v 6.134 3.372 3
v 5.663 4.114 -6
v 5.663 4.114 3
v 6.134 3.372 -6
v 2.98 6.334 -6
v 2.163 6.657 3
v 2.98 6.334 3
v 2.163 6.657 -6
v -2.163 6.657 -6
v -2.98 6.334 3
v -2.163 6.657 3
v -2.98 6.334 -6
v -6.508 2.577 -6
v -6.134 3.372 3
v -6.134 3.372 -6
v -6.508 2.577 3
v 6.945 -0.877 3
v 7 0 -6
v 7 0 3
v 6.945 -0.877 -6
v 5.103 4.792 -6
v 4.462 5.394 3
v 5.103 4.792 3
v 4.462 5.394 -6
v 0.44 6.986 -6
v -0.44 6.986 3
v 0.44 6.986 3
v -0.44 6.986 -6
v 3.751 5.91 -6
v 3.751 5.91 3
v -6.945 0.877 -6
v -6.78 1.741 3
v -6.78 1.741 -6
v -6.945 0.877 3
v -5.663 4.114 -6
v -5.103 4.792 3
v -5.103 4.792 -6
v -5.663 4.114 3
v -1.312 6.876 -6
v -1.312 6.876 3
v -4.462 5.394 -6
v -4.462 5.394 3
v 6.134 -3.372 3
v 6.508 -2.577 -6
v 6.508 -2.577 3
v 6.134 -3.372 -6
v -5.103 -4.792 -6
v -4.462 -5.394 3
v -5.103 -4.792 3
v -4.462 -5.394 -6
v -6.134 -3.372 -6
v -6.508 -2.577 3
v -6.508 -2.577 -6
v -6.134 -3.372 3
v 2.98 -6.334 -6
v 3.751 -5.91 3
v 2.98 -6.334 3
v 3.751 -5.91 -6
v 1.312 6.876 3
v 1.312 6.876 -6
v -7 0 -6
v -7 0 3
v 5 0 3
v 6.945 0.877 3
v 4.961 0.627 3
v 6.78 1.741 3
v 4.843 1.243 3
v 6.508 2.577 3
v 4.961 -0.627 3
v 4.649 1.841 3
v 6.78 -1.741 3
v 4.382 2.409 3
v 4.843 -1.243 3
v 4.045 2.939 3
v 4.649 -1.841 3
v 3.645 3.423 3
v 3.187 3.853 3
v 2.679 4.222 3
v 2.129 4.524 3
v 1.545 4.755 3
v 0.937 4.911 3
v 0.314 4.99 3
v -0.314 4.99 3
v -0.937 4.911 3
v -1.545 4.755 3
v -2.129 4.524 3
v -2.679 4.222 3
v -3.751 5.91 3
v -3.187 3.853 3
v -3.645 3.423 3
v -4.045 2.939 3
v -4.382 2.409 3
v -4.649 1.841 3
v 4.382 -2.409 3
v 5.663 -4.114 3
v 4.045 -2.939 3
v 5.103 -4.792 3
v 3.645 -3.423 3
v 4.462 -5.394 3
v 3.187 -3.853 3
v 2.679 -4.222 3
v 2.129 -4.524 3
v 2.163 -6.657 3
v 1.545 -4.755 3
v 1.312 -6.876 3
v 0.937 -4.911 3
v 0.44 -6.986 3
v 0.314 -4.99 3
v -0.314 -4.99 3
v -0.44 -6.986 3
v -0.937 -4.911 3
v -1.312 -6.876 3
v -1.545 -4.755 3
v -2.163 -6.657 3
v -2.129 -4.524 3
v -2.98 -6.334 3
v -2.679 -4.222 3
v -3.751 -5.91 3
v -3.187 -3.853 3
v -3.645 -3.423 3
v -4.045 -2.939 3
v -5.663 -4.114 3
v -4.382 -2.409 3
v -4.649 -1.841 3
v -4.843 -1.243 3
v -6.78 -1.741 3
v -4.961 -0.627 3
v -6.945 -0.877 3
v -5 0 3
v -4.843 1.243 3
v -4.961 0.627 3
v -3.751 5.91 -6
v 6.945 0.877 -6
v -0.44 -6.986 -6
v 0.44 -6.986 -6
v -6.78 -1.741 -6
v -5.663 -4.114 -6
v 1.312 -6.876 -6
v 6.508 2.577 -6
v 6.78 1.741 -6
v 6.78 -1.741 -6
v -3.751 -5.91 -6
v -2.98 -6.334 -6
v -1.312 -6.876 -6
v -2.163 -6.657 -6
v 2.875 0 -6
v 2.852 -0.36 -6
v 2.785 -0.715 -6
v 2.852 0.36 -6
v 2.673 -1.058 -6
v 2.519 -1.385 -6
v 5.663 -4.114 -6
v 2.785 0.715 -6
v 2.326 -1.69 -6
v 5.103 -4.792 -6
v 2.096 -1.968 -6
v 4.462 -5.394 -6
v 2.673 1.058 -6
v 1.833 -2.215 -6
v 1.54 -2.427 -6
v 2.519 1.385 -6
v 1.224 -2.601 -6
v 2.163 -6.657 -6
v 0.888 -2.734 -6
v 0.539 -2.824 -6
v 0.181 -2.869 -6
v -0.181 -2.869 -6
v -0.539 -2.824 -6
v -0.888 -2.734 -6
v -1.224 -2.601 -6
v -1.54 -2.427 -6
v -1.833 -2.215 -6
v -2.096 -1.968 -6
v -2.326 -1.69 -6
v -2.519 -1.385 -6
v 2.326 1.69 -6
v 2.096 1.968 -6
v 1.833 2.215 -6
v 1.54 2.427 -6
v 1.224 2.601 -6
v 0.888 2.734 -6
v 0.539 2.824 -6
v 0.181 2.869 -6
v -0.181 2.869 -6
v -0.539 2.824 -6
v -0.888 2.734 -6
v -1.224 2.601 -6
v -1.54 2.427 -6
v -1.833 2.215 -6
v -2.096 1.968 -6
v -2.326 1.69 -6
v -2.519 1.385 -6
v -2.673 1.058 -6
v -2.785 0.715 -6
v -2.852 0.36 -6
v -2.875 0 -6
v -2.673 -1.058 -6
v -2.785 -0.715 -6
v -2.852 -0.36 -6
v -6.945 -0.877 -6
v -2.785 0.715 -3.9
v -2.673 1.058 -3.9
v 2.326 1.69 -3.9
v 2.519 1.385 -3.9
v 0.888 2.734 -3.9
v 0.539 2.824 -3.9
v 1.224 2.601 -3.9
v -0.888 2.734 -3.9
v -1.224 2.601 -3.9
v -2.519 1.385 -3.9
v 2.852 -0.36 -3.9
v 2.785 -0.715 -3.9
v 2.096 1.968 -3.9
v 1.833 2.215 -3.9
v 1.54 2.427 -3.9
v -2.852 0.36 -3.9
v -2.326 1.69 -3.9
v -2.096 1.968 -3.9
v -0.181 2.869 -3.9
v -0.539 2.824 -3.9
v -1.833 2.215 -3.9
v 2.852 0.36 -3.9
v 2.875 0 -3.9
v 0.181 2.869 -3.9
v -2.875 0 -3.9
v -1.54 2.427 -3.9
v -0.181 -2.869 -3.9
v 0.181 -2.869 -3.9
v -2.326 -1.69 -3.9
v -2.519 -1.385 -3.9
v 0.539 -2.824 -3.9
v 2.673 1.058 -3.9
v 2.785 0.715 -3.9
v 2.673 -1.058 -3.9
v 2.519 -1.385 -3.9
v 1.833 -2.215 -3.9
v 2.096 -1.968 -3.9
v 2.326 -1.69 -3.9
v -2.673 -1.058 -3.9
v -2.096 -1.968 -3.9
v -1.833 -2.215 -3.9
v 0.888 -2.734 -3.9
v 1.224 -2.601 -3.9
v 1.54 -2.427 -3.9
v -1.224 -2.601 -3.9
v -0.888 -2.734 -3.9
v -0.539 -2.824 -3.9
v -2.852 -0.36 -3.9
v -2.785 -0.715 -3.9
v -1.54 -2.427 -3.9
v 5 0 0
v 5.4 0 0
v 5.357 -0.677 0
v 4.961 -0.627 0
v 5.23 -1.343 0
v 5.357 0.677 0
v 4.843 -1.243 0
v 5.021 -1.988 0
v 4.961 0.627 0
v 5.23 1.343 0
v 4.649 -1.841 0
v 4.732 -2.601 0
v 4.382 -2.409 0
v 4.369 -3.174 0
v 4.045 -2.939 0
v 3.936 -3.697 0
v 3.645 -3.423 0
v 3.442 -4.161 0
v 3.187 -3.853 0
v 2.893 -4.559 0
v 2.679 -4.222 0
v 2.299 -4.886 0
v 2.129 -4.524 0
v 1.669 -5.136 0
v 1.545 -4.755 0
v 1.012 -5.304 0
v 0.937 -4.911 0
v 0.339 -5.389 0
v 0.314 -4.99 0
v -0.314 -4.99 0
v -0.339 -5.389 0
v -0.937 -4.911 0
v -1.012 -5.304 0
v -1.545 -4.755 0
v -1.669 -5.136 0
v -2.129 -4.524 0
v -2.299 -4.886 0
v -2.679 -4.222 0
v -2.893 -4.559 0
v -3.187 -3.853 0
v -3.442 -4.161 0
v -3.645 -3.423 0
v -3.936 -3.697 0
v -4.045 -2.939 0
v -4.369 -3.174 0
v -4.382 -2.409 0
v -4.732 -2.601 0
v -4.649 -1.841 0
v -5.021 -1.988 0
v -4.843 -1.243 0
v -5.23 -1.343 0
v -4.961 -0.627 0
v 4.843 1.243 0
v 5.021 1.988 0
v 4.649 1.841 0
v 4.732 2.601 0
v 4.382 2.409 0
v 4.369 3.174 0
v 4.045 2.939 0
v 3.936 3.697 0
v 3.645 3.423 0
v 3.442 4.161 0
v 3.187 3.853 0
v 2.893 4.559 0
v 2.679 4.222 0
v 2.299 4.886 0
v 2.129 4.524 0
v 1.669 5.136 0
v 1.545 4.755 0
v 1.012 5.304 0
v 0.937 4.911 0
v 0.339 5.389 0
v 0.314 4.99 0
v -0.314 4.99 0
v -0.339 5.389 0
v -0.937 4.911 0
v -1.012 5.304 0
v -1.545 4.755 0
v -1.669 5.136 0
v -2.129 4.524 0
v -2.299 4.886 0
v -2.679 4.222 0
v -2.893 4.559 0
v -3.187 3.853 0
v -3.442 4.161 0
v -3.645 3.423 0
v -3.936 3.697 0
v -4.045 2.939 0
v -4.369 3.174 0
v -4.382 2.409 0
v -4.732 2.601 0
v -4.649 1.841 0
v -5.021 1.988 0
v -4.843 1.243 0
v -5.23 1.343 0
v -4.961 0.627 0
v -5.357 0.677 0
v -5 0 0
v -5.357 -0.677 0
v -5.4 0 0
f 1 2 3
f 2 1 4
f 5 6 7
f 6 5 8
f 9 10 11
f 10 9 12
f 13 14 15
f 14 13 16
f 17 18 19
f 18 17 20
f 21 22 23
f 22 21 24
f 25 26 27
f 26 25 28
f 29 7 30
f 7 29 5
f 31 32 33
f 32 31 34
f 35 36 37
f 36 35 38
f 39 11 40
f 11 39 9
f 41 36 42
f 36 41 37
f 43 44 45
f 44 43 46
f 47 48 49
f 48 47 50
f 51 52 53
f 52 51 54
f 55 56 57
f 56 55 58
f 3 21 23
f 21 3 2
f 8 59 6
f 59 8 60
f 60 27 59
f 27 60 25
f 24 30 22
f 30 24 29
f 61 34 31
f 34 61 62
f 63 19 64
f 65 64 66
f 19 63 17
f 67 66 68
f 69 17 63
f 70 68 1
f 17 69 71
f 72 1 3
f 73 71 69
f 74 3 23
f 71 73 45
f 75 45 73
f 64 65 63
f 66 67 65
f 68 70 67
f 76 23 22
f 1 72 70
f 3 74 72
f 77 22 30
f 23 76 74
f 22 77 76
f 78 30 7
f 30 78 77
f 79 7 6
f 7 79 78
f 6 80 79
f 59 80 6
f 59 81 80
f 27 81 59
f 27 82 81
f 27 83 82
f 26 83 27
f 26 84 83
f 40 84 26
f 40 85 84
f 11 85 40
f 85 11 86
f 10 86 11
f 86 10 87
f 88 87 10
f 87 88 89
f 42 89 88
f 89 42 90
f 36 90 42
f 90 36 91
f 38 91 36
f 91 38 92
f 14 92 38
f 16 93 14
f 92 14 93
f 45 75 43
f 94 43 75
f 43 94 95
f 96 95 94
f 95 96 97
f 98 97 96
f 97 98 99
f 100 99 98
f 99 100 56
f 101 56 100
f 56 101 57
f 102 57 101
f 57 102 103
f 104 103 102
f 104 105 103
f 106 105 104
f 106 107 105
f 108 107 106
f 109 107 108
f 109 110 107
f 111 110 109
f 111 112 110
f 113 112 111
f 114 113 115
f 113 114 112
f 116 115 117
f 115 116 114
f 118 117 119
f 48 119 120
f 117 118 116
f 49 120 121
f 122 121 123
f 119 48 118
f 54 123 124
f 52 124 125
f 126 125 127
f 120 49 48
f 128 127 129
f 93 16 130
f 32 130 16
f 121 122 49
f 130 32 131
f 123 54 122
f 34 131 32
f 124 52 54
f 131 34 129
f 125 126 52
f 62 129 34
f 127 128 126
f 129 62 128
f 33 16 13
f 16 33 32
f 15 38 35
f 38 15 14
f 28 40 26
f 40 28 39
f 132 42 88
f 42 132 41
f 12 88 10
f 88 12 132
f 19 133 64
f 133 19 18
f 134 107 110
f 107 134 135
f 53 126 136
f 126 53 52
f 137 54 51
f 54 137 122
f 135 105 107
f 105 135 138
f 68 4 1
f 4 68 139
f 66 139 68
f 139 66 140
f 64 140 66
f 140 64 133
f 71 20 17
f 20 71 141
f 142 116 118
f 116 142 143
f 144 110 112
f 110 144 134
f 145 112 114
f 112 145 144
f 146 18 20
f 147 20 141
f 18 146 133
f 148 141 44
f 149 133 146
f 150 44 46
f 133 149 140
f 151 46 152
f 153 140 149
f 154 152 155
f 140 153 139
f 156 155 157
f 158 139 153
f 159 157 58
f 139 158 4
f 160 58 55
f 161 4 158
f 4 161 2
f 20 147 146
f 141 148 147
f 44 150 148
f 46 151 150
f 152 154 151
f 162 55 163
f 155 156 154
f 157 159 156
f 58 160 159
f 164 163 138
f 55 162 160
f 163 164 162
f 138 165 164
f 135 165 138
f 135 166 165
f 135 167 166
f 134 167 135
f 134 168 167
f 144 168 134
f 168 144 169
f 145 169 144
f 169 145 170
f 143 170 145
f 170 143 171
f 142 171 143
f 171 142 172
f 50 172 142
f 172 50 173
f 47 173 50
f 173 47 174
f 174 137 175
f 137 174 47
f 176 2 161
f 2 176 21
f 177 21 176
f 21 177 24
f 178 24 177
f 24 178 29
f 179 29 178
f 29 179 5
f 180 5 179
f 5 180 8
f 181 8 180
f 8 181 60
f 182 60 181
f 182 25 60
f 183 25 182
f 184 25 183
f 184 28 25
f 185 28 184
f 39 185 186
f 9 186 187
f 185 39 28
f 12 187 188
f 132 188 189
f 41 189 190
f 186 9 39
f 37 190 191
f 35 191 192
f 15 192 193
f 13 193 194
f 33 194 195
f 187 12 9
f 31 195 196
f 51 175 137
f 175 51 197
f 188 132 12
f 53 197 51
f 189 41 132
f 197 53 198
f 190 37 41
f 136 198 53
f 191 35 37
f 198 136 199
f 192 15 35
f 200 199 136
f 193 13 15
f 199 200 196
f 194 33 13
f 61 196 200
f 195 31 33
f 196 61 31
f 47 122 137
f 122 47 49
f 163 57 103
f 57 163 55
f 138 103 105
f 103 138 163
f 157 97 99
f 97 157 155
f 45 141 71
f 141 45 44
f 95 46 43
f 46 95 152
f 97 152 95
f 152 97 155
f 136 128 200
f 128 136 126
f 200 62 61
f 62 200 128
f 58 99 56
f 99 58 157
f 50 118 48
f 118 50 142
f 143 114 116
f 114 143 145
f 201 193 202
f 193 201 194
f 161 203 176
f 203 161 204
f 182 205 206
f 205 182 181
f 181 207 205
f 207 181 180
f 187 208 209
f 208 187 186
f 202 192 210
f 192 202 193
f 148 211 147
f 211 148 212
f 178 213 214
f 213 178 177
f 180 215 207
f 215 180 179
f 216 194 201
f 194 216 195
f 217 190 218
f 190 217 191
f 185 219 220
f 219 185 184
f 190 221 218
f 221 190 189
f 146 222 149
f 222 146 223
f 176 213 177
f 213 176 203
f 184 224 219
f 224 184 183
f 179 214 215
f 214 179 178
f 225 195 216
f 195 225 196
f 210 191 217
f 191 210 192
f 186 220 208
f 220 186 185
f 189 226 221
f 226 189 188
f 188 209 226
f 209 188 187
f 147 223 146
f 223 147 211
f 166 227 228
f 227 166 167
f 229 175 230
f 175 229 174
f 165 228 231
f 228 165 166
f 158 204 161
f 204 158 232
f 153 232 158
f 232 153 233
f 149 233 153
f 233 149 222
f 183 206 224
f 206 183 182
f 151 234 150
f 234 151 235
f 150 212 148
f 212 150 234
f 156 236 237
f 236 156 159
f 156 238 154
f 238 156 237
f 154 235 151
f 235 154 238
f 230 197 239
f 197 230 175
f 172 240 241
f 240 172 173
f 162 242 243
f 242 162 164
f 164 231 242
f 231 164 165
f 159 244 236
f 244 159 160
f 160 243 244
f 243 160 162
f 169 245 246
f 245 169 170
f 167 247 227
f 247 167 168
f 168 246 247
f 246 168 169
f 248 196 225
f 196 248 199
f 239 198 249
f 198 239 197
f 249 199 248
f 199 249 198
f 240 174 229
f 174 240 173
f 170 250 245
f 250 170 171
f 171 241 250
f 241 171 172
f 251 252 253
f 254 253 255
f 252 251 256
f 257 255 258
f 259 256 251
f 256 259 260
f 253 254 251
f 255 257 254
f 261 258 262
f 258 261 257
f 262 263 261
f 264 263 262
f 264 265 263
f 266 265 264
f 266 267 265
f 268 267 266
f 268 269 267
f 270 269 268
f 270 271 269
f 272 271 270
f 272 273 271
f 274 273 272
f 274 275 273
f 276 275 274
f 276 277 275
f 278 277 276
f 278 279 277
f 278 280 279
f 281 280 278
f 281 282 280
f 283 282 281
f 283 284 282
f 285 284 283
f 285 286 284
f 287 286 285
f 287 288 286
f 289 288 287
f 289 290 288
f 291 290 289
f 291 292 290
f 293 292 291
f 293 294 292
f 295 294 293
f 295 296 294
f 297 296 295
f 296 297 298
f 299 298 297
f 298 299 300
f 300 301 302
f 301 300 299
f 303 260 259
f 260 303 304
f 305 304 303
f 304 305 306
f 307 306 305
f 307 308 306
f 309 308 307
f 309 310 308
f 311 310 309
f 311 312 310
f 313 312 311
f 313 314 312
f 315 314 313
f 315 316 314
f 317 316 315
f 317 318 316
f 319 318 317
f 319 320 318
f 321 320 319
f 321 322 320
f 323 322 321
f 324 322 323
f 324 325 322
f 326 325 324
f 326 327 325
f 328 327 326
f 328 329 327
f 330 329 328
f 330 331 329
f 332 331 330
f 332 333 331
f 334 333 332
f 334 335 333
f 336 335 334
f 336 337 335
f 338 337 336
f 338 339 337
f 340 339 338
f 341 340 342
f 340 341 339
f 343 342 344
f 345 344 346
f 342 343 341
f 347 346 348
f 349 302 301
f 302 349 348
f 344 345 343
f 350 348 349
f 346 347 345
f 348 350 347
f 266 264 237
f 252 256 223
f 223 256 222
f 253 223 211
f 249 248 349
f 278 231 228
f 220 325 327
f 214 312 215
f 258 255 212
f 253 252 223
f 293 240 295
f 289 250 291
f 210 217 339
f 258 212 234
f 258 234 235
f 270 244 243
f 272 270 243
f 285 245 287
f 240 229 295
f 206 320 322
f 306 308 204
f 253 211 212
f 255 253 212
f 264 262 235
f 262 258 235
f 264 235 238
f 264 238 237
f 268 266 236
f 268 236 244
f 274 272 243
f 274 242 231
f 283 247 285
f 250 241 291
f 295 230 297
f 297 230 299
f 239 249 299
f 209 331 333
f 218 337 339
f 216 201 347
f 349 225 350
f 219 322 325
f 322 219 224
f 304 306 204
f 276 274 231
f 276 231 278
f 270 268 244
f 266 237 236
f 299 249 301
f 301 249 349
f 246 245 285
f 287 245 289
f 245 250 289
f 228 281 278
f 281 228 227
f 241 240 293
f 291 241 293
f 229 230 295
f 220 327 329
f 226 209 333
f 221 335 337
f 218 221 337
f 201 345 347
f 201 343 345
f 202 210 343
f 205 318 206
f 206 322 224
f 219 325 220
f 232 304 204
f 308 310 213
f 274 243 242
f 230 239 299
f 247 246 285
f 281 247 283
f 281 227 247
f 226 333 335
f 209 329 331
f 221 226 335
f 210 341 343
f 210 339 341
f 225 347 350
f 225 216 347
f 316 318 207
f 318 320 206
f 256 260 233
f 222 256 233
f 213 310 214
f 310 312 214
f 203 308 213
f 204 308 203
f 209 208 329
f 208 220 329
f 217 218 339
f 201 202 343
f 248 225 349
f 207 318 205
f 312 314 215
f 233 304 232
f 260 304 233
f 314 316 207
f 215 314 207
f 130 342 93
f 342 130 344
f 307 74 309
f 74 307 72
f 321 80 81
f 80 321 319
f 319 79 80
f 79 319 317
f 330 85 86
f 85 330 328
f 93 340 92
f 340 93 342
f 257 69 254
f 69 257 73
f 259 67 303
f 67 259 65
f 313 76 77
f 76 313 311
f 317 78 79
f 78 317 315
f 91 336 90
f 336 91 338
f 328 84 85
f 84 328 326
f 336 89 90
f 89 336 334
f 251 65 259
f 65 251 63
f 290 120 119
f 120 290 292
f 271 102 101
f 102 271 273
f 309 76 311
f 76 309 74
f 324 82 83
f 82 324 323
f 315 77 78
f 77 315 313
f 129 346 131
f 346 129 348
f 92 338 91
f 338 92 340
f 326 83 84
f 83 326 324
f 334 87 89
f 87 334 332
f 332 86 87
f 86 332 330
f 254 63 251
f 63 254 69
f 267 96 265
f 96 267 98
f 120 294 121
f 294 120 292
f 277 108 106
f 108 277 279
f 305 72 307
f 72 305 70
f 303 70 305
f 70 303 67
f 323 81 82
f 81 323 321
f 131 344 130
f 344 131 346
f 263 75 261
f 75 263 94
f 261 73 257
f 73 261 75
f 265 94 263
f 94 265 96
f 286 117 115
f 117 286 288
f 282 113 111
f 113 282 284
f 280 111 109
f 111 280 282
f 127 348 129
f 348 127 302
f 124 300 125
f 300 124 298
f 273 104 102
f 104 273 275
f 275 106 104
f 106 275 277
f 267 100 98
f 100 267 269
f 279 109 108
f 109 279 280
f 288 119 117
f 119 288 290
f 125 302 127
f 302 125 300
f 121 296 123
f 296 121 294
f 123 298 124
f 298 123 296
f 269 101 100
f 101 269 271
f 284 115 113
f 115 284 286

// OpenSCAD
$fn = 50;


difference() {
	union() {
		translate(v = [0, 0, -6.0000000000]) {
			cylinder(h = 9, r = 7.0000000000);
		}
		#translate(v = [0, 0, -9.0000000000]) {
			cylinder(h = 9, r = 2.8750000000);
		}
	}
	union() {
		translate(v = [0, 0, 0]) {
			rotate(a = [0, 0, 0]) {
				difference() {
					union() {
						translate(v = [0, 0, -9.0000000000]) {
							cylinder(h = 9, r = 2.6000000000);
						}
						translate(v = [0, 0, -3.9000000000]) {
							cylinder(h = 3.9000000000, r1 = 2.8750000000, r2 = 5.4000000000);
						}
						translate(v = [0, 0, -9.0000000000]) {
							cylinder(h = 9, r = 2.8750000000);
						}
						translate(v = [0, 0, -9.0000000000]) {
							cylinder(h = 9, r = 2.6000000000);
						}
					}
					union();
				}
			}
		}
		#cylinder(h = 3, r = 5.0000000000);
	}
}
